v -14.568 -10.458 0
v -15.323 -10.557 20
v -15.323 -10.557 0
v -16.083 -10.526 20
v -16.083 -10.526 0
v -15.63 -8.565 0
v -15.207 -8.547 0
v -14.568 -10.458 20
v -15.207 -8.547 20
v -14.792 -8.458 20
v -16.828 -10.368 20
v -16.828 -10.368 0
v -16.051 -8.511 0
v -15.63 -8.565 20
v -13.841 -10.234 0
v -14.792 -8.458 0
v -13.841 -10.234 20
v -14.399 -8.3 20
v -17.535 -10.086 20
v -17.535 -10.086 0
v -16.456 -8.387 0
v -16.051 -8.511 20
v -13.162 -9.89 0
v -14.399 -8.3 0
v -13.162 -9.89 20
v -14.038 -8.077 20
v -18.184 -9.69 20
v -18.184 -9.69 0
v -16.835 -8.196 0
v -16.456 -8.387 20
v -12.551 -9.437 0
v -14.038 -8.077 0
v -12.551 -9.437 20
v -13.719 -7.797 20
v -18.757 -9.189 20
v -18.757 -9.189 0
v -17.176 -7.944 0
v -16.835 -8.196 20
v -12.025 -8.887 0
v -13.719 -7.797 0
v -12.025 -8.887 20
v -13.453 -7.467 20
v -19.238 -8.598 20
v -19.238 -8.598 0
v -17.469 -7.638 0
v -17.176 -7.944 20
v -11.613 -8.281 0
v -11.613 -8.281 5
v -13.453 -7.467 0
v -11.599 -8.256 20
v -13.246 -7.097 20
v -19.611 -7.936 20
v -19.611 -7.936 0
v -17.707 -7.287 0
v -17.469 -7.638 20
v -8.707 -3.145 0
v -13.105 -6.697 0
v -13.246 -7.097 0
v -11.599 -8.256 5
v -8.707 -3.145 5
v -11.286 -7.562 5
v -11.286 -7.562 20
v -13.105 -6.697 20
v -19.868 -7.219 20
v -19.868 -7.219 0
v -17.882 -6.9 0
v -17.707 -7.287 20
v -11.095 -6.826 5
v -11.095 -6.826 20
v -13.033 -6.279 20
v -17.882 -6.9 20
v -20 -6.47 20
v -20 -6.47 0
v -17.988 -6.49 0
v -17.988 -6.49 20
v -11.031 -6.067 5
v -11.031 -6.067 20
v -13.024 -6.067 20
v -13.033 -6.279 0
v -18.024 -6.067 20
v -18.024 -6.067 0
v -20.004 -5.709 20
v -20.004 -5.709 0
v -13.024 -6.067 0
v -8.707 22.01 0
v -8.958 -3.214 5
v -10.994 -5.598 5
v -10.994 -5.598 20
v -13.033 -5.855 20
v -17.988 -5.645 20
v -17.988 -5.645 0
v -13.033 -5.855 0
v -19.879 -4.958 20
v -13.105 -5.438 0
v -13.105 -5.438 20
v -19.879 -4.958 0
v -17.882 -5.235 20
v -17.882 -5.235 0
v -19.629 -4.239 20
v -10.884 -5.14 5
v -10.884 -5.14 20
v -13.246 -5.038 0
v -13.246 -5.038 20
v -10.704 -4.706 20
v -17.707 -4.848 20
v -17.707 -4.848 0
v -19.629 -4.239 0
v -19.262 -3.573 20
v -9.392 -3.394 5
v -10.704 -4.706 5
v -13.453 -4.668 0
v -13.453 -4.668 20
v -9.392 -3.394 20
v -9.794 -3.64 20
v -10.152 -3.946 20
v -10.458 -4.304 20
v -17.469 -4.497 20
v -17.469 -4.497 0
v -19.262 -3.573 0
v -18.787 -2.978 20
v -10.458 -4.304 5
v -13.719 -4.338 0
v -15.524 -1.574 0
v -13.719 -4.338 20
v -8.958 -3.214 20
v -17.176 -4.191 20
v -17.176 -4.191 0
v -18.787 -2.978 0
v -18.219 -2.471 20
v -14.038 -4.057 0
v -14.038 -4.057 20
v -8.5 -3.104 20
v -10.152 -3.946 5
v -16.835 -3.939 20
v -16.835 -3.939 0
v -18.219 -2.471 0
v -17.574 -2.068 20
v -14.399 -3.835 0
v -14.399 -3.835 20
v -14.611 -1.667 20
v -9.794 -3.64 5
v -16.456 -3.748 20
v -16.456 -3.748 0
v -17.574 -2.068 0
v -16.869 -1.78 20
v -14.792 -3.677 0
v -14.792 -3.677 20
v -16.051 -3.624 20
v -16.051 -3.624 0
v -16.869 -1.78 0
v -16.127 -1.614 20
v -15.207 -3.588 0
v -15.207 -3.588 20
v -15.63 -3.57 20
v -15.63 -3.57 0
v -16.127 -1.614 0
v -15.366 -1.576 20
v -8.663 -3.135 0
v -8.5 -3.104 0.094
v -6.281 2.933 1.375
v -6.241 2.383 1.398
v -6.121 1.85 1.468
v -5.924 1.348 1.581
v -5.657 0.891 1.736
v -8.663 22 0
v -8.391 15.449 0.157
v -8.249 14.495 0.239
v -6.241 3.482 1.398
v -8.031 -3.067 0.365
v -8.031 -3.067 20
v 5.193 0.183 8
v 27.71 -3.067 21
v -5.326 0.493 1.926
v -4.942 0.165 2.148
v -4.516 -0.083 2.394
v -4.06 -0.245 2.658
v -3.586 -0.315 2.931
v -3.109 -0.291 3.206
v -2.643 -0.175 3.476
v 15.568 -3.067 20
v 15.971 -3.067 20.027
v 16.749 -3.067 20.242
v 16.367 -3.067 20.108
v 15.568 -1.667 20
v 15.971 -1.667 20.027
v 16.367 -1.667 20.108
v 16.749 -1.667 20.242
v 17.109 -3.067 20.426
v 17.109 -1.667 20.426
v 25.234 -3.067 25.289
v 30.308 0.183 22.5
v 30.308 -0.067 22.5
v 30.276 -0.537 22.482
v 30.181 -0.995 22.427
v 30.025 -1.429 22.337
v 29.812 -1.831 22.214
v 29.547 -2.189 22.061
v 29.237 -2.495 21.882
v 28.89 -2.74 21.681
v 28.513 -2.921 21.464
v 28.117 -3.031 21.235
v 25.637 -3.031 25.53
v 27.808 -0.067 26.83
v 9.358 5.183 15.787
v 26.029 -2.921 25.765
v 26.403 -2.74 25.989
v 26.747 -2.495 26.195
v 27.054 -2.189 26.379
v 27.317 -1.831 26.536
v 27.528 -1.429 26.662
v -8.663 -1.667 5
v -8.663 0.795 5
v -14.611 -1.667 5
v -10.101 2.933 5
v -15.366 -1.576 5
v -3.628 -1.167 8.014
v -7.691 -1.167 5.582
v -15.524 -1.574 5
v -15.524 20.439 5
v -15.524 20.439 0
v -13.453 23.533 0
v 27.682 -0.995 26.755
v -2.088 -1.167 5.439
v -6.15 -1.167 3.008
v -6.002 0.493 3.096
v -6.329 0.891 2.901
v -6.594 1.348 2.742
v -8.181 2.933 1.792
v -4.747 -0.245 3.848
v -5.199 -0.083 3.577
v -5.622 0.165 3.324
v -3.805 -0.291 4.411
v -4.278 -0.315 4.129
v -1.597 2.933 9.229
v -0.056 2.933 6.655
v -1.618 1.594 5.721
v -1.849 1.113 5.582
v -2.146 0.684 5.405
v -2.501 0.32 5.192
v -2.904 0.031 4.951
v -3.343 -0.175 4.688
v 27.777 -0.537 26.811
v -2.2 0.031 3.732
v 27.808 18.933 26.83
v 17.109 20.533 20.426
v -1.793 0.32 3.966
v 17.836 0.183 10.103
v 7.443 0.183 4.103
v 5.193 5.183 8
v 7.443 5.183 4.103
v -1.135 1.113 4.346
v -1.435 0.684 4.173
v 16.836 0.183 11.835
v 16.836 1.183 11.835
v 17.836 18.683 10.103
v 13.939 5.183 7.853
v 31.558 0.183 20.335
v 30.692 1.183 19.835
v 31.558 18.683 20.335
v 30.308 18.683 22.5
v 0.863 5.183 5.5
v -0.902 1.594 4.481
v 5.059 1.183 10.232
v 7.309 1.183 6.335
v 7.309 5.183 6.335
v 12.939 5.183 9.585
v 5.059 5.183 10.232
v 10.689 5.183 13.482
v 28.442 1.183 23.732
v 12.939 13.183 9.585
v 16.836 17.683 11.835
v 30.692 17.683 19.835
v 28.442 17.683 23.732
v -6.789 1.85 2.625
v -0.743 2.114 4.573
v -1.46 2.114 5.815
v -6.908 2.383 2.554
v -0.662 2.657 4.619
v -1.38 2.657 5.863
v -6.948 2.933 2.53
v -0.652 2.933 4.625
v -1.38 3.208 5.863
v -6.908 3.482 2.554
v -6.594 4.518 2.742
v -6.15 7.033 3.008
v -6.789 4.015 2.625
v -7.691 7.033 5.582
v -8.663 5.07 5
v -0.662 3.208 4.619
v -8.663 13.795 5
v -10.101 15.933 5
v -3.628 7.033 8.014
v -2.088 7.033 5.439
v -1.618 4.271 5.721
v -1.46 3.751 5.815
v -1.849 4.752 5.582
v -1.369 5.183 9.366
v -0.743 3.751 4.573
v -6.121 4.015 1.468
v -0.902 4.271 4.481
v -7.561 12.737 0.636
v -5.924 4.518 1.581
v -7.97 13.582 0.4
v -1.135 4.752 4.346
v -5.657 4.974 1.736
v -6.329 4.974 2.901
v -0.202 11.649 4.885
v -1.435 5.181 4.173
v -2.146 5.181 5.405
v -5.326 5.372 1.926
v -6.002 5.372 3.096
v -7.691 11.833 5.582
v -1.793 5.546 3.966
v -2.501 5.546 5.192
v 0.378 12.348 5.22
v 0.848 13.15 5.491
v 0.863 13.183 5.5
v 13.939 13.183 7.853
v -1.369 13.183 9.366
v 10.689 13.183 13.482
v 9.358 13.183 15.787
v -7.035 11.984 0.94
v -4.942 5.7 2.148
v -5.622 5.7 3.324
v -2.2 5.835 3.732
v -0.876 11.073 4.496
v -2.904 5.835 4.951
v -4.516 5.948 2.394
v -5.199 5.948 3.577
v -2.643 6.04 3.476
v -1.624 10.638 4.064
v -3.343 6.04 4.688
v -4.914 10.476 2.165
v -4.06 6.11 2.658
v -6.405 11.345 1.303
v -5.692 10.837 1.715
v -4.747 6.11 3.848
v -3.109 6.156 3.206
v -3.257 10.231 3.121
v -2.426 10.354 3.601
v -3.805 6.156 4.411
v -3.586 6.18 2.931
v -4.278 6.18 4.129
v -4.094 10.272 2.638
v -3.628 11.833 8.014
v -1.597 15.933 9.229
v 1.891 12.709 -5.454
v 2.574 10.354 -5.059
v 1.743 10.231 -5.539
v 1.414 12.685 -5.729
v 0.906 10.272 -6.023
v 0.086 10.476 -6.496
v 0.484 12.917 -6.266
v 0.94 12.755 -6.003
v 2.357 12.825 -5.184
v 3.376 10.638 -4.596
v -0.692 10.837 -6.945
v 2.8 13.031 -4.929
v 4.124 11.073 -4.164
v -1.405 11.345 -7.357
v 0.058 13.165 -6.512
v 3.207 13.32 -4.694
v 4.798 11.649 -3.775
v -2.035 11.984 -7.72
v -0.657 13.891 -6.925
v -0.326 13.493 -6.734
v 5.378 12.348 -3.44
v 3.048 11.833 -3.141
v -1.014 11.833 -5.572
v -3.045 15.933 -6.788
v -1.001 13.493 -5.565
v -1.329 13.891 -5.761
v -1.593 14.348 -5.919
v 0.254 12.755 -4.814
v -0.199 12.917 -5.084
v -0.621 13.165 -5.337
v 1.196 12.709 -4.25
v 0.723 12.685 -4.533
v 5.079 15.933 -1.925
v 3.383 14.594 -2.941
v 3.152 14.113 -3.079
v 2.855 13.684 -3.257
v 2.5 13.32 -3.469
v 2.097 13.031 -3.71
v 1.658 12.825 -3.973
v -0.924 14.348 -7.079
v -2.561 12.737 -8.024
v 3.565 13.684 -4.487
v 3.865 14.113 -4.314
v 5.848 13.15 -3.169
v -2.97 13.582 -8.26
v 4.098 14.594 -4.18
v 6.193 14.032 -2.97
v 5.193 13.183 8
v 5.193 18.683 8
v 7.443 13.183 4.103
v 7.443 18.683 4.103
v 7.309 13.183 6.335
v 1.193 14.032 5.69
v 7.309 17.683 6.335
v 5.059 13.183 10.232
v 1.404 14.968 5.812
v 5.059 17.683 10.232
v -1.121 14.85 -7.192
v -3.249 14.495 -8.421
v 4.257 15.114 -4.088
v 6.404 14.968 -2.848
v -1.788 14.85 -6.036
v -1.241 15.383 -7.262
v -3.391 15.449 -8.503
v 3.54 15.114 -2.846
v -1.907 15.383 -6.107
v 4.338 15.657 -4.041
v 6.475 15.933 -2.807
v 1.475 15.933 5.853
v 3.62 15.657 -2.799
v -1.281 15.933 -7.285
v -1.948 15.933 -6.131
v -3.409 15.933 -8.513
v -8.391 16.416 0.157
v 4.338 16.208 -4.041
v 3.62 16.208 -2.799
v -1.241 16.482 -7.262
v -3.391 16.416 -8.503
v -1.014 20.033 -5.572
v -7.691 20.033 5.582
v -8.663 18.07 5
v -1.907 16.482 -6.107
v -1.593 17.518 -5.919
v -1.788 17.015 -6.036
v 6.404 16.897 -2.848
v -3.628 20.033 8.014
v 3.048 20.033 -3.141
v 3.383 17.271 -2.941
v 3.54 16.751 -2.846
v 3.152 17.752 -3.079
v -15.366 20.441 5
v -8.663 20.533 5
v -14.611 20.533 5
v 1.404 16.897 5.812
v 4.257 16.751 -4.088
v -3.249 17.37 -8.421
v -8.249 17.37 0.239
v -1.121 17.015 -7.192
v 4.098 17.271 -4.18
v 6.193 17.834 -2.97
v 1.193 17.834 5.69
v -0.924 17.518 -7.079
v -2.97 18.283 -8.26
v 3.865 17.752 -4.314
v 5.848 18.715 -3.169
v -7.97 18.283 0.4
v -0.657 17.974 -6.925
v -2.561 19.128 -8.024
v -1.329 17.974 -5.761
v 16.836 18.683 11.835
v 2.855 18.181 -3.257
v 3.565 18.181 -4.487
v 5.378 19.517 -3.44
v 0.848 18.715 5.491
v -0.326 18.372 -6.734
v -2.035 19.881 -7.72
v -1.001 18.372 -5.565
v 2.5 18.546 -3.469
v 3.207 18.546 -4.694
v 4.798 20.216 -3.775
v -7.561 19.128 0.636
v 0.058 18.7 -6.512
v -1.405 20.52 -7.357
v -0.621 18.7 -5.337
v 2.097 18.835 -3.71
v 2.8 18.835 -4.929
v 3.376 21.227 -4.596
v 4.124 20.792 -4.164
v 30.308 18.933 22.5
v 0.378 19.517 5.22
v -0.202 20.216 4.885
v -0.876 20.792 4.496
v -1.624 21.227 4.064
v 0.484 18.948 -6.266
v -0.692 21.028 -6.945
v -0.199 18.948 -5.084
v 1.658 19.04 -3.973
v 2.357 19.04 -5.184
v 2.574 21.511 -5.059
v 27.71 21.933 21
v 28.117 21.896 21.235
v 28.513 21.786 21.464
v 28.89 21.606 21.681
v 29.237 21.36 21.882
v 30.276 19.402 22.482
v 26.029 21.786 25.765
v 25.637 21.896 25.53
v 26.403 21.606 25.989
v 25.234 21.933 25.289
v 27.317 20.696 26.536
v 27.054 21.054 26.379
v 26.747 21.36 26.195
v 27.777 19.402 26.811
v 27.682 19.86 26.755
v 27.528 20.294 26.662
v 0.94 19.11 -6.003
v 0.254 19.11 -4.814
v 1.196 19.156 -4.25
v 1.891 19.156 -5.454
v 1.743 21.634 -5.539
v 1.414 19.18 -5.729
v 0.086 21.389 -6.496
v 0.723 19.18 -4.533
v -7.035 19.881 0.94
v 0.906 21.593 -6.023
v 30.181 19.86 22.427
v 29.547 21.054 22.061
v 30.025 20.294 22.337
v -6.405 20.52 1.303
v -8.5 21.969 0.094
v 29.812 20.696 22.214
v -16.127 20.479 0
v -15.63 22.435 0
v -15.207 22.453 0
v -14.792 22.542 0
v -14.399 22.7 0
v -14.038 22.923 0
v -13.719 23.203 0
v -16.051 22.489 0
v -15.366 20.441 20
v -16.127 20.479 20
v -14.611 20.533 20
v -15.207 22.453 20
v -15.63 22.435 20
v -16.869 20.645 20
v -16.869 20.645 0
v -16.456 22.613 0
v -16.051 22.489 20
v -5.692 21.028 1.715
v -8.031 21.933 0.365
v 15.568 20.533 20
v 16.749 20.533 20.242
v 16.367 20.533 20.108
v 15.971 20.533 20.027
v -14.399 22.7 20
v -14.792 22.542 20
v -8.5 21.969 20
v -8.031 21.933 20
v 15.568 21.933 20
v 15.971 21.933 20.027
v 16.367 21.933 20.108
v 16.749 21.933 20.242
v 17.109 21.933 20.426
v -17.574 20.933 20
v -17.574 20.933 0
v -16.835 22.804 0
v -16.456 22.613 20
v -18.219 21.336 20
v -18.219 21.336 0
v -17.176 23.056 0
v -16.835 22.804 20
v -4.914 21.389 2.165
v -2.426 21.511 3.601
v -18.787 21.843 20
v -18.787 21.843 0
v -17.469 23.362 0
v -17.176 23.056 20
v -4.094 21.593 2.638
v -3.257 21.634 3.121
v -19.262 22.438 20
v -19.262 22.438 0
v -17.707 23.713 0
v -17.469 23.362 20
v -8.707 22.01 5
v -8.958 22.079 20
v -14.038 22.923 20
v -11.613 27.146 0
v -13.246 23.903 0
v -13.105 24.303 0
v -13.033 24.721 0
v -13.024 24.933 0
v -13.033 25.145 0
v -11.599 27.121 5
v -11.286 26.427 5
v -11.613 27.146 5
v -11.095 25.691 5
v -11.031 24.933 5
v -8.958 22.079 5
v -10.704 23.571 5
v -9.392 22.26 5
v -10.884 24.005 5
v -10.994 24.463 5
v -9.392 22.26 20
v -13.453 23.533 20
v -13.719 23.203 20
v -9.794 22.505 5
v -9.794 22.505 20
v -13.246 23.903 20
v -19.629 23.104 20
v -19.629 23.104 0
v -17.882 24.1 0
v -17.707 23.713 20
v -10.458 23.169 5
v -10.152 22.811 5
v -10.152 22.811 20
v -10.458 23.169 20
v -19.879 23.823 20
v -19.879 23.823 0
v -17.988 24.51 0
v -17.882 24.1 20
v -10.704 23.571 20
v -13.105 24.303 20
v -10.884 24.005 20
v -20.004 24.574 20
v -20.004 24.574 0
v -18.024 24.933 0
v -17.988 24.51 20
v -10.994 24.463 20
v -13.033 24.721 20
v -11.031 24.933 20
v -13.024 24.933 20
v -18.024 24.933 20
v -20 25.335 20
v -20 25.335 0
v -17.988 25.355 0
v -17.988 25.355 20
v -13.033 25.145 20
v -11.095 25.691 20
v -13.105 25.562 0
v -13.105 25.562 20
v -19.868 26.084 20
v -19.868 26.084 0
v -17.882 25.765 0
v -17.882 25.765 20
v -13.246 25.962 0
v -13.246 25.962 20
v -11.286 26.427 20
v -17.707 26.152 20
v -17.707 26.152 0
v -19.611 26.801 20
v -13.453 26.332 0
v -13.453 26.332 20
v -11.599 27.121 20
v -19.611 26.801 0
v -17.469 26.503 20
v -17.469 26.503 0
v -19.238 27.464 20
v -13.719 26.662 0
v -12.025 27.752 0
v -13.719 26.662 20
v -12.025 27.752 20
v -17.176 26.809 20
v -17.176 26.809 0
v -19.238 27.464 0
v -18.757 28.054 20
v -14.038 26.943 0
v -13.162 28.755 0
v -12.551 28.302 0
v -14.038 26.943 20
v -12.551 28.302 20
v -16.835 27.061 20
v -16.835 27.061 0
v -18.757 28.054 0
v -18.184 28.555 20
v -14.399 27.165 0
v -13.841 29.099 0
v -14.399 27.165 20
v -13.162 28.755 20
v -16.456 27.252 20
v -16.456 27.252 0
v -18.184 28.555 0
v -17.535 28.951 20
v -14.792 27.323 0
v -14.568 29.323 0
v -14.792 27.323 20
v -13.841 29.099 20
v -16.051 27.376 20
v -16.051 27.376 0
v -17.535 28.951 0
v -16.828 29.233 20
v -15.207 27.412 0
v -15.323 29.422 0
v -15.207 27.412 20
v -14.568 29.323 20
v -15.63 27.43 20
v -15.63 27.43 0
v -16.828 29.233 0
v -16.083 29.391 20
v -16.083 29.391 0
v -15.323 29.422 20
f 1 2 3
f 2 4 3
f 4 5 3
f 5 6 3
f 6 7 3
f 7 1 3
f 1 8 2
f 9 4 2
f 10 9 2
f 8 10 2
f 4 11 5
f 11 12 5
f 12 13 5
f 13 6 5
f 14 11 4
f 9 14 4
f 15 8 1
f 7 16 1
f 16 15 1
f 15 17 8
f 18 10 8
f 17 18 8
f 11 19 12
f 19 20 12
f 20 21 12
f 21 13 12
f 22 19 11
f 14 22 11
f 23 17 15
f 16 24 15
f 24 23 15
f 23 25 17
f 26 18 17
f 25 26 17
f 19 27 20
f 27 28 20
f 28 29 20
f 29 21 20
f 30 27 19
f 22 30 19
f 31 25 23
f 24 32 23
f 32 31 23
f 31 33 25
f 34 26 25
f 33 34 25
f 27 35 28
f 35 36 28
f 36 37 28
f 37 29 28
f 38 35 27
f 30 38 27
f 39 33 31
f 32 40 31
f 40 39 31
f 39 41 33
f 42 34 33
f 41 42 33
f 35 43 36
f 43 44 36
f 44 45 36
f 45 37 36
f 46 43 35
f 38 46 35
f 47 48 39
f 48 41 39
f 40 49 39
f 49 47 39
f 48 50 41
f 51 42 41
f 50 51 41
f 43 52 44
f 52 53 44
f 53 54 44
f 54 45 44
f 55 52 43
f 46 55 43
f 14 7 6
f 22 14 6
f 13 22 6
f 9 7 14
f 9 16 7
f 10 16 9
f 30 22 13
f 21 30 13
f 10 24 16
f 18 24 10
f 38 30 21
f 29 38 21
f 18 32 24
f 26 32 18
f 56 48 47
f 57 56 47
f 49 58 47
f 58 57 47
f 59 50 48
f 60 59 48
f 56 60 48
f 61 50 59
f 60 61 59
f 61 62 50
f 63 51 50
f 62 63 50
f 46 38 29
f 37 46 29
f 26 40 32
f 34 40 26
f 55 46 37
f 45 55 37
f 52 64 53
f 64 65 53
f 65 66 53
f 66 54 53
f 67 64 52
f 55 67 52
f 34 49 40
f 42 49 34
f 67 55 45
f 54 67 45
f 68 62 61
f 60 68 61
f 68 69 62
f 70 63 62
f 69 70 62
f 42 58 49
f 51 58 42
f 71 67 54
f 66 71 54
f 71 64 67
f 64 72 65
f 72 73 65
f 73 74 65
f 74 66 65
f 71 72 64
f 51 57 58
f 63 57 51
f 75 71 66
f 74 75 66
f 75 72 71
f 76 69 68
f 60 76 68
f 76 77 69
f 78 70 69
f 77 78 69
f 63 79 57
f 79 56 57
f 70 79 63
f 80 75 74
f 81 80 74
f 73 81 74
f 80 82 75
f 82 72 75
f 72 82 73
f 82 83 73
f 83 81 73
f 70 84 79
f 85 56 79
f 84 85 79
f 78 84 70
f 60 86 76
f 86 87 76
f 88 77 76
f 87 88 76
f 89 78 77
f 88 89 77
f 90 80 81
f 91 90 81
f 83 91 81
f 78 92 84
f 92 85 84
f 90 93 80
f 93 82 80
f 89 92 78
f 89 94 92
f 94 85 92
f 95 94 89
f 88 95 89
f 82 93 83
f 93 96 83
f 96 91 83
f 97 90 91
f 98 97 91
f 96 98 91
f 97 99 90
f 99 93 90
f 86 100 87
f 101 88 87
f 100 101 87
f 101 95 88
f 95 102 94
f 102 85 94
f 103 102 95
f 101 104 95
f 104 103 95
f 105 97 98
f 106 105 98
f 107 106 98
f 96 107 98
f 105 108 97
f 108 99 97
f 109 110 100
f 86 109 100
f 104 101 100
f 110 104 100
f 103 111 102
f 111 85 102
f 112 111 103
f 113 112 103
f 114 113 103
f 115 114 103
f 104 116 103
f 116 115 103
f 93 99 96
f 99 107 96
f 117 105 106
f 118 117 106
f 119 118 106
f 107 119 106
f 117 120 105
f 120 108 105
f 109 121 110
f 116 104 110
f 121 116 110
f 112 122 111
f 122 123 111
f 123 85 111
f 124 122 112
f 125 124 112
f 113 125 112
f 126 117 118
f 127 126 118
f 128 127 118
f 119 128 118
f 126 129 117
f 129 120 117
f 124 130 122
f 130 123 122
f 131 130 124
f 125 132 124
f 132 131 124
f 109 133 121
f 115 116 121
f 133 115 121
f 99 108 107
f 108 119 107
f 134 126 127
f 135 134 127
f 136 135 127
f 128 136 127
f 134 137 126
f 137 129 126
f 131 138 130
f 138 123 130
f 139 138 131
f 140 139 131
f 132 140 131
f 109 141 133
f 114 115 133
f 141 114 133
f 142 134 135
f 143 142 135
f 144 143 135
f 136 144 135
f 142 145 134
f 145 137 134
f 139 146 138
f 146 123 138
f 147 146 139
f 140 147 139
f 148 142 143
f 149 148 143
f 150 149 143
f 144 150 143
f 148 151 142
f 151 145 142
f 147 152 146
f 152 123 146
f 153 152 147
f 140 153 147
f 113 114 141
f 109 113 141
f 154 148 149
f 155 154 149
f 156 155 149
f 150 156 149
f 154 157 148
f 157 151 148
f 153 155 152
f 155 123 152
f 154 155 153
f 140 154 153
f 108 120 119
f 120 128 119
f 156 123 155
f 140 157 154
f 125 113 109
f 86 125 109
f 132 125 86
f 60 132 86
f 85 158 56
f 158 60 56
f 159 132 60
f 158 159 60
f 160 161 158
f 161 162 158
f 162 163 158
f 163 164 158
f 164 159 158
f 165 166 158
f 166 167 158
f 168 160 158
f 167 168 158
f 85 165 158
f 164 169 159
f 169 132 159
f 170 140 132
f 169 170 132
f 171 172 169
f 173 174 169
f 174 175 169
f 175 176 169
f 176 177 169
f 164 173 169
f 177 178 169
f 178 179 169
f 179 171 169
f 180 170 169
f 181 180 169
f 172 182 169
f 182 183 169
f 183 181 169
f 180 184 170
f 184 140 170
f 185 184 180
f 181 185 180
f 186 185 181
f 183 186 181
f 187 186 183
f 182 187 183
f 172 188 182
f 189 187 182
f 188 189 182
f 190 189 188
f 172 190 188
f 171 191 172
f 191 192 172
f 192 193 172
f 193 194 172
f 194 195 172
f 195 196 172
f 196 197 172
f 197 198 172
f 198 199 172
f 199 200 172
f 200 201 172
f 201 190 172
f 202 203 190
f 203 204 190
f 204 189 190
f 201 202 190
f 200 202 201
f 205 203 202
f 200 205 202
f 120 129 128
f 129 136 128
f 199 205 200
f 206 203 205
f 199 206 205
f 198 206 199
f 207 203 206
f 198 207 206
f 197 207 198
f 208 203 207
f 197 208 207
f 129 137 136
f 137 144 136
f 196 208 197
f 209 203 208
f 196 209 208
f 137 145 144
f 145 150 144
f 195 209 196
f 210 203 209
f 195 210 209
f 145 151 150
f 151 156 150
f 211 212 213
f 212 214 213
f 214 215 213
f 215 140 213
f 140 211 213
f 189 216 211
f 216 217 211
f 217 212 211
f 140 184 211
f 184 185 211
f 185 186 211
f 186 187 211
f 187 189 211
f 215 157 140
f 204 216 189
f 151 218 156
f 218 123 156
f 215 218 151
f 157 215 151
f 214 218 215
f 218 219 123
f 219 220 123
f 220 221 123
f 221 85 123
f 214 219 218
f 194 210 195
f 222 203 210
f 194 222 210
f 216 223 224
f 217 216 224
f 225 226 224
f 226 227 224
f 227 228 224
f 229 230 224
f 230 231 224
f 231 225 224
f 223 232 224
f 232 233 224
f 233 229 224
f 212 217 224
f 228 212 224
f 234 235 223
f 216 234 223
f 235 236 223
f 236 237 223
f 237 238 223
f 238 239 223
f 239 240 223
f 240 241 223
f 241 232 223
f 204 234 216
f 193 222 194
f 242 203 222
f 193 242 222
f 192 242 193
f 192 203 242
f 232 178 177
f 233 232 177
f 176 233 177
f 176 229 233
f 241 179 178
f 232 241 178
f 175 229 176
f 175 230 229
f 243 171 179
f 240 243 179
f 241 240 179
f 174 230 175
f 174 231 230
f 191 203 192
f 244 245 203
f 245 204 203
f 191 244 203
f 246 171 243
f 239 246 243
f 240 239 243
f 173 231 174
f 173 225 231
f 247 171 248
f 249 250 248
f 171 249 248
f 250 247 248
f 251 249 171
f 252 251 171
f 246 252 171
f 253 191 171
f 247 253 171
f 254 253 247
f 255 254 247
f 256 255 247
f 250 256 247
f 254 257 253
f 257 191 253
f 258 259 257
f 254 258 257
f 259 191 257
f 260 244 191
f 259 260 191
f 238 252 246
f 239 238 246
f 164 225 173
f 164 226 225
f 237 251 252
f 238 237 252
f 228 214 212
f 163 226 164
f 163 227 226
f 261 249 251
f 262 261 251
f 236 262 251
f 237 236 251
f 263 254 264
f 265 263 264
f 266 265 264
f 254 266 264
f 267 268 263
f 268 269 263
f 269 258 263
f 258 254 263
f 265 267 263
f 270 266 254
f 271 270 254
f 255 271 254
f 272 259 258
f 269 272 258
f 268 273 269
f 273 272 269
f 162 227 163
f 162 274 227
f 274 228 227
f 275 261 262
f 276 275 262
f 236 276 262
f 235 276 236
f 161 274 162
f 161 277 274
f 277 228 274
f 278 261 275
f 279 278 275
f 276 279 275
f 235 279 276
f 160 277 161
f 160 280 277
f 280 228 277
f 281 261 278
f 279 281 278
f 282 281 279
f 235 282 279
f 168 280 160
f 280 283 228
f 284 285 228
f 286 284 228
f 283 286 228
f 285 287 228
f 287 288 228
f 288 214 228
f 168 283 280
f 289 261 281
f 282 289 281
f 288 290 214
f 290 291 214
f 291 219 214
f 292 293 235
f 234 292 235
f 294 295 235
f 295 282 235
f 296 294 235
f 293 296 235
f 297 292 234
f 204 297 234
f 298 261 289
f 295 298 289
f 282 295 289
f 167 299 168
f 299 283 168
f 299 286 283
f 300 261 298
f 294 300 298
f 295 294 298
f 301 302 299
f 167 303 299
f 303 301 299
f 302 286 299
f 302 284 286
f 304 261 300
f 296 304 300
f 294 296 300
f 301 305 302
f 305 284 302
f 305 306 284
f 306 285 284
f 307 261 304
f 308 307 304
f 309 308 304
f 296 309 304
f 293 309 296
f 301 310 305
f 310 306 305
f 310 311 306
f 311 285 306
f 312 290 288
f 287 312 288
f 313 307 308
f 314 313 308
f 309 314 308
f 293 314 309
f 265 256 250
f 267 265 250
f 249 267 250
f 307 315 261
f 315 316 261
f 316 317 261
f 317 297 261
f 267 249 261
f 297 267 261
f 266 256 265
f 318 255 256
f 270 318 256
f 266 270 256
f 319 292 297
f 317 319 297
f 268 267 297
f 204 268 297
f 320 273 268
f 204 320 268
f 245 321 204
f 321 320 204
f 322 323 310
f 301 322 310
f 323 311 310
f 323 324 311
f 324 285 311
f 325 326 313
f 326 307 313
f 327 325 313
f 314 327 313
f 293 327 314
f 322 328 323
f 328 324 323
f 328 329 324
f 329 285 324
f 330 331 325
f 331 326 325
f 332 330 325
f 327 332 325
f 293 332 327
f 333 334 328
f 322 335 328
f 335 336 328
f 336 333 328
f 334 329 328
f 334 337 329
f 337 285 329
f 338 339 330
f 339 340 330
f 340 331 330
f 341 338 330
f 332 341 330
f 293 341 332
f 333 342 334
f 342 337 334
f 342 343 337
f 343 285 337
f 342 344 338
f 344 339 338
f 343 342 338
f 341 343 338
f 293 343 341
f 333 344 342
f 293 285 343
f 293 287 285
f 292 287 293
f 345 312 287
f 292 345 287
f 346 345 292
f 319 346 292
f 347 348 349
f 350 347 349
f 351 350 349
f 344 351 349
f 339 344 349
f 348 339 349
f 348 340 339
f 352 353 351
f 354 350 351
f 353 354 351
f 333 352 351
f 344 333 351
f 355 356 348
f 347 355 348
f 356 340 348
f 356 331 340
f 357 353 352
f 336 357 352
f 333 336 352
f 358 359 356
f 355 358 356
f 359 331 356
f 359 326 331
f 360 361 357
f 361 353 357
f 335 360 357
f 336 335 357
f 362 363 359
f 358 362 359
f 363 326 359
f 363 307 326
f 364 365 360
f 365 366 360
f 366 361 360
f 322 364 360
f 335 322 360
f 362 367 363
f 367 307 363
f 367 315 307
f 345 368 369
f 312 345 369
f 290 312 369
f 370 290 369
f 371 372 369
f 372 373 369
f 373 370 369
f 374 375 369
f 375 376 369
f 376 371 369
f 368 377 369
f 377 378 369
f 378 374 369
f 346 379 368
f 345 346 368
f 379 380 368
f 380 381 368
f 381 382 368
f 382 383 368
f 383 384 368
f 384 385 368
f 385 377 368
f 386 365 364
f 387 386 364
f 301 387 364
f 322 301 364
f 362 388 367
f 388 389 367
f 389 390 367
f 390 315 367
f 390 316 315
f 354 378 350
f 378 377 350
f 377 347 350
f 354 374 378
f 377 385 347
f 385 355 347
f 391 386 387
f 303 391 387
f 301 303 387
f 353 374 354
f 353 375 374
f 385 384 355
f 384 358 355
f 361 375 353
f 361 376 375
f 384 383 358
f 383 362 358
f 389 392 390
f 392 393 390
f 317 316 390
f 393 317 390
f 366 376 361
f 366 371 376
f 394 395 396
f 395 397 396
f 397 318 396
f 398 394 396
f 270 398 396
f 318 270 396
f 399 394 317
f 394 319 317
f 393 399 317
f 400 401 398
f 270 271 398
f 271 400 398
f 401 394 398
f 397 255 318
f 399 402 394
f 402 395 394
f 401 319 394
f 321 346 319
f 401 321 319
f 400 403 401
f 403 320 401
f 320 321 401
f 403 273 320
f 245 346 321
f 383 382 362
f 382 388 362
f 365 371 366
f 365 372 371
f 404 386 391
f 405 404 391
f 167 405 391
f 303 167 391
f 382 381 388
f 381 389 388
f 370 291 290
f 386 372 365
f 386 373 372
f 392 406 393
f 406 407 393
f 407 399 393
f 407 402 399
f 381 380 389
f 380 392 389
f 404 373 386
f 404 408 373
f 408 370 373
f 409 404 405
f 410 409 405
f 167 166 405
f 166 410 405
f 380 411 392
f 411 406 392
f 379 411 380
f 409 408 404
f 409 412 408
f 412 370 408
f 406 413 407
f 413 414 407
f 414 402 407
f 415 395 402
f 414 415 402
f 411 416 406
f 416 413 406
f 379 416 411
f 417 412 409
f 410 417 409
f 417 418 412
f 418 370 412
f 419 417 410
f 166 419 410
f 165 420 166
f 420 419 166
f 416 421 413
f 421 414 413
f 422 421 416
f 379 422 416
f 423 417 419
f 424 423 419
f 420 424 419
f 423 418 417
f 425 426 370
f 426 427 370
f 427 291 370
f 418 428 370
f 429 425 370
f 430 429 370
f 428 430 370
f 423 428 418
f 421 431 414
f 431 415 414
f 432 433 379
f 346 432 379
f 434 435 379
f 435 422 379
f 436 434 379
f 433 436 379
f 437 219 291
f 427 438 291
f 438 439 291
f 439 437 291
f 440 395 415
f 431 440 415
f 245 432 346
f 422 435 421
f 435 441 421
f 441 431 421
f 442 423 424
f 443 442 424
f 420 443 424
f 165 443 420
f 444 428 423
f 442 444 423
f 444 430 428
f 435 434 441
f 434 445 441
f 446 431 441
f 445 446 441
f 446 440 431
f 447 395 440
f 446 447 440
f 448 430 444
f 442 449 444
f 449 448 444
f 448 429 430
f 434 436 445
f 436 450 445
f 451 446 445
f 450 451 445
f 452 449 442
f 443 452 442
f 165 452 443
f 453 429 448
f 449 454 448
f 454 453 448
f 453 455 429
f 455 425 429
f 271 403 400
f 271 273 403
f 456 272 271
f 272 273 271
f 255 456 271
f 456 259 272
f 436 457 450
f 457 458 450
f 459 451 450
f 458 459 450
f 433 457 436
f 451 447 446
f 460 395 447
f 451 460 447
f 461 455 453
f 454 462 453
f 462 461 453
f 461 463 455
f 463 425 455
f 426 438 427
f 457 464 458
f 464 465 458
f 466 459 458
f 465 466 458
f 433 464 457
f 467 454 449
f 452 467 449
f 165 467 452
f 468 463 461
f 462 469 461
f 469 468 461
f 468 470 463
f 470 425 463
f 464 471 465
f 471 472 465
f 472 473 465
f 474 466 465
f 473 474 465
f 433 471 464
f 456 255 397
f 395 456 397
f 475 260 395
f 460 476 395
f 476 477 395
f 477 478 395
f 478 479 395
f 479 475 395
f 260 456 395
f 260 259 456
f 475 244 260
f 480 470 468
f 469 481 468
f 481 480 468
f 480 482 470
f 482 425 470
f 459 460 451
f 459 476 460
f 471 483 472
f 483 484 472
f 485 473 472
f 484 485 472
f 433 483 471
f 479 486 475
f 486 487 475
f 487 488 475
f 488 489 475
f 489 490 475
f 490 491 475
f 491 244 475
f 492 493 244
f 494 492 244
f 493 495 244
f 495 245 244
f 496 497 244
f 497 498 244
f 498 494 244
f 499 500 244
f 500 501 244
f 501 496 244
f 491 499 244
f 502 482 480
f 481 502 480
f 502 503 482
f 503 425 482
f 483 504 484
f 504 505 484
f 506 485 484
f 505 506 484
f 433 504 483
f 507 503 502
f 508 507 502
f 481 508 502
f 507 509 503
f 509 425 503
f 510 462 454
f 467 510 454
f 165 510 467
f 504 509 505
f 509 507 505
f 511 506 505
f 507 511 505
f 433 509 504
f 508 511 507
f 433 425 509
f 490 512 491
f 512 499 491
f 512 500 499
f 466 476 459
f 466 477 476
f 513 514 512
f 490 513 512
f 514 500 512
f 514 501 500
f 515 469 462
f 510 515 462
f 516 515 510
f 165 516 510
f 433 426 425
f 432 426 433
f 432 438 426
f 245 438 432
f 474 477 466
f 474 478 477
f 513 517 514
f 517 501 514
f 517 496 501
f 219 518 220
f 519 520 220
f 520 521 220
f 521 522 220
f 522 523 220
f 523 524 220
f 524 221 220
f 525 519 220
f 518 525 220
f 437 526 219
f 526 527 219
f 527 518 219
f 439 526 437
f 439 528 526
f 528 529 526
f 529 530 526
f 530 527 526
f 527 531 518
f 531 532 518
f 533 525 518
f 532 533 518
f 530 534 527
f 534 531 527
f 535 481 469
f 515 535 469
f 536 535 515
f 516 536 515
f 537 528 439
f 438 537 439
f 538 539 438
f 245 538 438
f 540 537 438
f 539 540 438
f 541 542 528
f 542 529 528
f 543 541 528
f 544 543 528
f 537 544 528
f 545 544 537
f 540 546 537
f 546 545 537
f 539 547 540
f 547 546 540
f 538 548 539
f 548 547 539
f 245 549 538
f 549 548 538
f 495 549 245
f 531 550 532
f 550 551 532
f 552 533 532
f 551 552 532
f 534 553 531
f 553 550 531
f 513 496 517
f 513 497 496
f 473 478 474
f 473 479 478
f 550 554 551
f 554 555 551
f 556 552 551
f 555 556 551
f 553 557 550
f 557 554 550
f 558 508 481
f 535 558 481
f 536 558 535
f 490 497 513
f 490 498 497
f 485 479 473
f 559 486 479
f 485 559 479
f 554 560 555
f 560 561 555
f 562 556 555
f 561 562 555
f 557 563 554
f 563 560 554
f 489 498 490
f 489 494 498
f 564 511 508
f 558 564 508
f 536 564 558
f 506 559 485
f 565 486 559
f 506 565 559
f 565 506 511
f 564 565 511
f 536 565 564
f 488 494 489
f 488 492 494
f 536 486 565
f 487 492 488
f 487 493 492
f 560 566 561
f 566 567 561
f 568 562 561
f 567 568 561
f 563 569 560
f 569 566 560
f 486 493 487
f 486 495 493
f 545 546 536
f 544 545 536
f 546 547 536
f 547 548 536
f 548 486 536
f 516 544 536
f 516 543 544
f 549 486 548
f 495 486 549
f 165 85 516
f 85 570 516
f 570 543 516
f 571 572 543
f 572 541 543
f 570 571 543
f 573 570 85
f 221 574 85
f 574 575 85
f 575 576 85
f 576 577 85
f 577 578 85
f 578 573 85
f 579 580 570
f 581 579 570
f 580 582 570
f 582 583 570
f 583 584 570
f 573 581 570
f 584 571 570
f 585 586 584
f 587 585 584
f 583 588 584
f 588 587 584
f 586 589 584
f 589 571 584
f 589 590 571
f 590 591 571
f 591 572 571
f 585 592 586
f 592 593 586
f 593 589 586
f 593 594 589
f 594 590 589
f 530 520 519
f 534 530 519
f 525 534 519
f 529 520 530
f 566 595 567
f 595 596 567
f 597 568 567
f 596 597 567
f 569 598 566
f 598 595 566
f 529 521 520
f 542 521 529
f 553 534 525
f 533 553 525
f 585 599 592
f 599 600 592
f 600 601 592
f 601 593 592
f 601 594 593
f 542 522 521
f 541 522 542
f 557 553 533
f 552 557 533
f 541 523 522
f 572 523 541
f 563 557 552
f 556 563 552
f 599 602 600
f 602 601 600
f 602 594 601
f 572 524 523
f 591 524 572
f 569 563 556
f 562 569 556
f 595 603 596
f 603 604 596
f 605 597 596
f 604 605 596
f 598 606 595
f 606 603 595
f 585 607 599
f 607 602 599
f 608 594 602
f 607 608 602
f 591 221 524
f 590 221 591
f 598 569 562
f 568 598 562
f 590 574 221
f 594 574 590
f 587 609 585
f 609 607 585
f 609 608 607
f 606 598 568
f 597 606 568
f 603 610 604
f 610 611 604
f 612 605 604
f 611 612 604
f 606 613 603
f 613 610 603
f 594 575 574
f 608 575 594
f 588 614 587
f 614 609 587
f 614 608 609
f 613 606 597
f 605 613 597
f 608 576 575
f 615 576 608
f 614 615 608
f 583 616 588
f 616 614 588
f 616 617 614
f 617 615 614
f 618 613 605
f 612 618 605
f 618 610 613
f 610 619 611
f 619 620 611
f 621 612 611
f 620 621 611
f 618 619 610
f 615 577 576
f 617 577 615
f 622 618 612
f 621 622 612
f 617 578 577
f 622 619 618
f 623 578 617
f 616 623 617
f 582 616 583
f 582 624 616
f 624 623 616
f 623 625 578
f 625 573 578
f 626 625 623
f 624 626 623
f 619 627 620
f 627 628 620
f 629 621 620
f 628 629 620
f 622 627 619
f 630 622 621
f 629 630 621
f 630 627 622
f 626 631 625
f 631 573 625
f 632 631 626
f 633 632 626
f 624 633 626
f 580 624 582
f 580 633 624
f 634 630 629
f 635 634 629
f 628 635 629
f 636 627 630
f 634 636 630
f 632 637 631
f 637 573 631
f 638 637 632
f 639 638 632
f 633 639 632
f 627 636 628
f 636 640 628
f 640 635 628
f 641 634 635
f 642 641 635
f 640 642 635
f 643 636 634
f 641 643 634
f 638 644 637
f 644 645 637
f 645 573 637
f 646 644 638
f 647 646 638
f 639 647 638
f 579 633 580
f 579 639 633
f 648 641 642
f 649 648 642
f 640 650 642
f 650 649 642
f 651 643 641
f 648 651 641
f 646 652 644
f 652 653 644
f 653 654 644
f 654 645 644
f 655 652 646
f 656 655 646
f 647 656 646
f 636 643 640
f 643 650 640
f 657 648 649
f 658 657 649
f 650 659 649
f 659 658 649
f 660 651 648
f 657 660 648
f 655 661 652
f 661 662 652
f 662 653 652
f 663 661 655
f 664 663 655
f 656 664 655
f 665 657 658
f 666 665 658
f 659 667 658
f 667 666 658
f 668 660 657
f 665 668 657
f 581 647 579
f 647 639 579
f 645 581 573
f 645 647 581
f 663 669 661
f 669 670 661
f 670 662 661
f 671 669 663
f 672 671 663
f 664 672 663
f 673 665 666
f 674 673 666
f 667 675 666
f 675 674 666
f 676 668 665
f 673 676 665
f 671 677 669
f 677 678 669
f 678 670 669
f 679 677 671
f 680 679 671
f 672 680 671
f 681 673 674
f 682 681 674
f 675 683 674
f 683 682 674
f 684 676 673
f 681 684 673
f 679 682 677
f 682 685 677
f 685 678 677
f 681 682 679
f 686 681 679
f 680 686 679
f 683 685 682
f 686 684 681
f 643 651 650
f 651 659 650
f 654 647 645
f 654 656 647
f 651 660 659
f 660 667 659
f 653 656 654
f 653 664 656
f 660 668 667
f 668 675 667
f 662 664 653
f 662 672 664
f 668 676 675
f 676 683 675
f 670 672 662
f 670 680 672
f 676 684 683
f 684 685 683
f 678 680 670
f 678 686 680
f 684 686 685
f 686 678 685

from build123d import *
from build123d.topology import SkipClean

# Parameters (mm, degrees)
CROQUIS3_R                 = 2.5
SALIENTE_EXTRUIR1_DEPTH    = 5
CROQUIS6_W                 = 27
CROQUIS6_H                 = 16.5
CORTAR_EXTRUIR1_DEPTH      = 2
CROQUIS7_W                 = 29
CROQUIS7_H                 = 18.5
CROQUIS7_W_2               = 27
CROQUIS7_H_2               = 16.5
SALIENTE_EXTRUIR2_DEPTH    = 2.5
CROQUIS8_W                 = 12
CROQUIS8_H                 = 18.5
SALIENTE_EXTRUIR3_DEPTH    = 2
CROQUIS9_W                 = 12.5
CROQUIS9_H                 = 8
CORTAR_EXTRUIR2_DEPTH      = 10
CROQUIS10_R                = 3.25
CORTAR_EXTRUIR3_DEPTH      = 10
CORTAR_EXTRUIR4_DEPTH      = 3
CORTAR_EXTRUIR4_DEPTH_BACK = 3
CROQUIS12_R                = 4.493807468
CROQUIS12_R_2              = 2.5
SALIENTE_EXTRUIR4_DEPTH    = 15
SALIENTE_EXTRUIR5_DEPTH    = 1.4
REDONDEO1_R                = 3
SALIENTE_EXTRUIR6_START    = 10
CROQUIS14_R                = 5.706356105
CROQUIS14_R_2              = 3.25
SALIENTE_EXTRUIR6_DEPTH    = 10
CORTAR_EXTRUIR5_DEPTH      = 10


with BuildPart() as part:
    # Croquis3 → Saliente-Extruir1 (new body)
    with BuildSketch(Plane.XY):
        with BuildLine():
            Line((-8.662935846, -3.067476434), (-11.613388129, -8.280831326))
            ThreePointArc((-11.613388129, -8.280831326), (-19.406371569, -8.331091381), (-15.524316735, -1.57366826))
            Line((-15.524316735, -1.57366826), (-15.524316735, 20.438715392))
            ThreePointArc((-15.524316735, 20.438715392), (-19.406371569, 27.196138513), (-11.613388129, 27.145878458))
            Line((-11.613388129, 27.145878458), (-8.662935846, 21.932523566))
            Line((-8.662935846, 21.932523566), (-8.662935846, -3.067476434))
        make_face()
        with Locations((-15.524316735, 24.93252286)):
            Circle(CROQUIS3_R, mode=Mode.SUBTRACT)
        with Locations((-15.524316735, -6.067475728)):
            Circle(CROQUIS3_R, mode=Mode.SUBTRACT)
    extrude(amount=SALIENTE_EXTRUIR1_DEPTH)

    # Croquis5 → section 0 of recubrir1
    with BuildSketch(Plane(origin=(32.473941286, 0, 18.748838743), x_dir=(0.5000000000000042, 0, -0.8660254037844363), z_dir=(0.8660254037844363, 0, 0.5000000000000042)), mode=Mode.PRIVATE) as recubrir1_s0:
        with BuildLine():
            Line((-4.331467923, 21.932523566), (-9.331467923, 21.932523566))
            Line((-9.331467923, 21.932523566), (-9.331467923, -3.067476434))
            Line((-9.331467923, -3.067476434), (-4.331467923, -3.067476434))
            Line((-4.331467923, -3.067476434), (-4.331467923, 21.932523566))
        make_face()
    # loft up to a face of the part (recubrir1)
    loft([recubrir1_s0.sketch, part.faces().sort_by_distance((-8.662935846, 9.432523566, 2.5))[0]])

    # Croquis6 → Cortar-Extruir1 (cut)
    with BuildSketch(Plane(origin=(-2.165733961, 0, 3.751161257), x_dir=(-0.8660254037844364, 0, -0.5000000000000041), z_dir=(0.500000000000004, 0, -0.8660254037844363))):
        with Locations((-22.997677486, 9.432523566)):
            Rectangle(CROQUIS6_W, CROQUIS6_H)
    extrude(amount=-CORTAR_EXTRUIR1_DEPTH, mode=Mode.SUBTRACT)

    # Croquis7 → Saliente-Extruir2 (add)
    with BuildSketch(Plane(origin=(-2.165733961, 0, 3.751161257), x_dir=(-0.8660254037844364, 0, -0.5000000000000041), z_dir=(0.500000000000004, 0, -0.8660254037844363))):
        with Locations((-22.997677486, 9.432523566)):
            Rectangle(CROQUIS7_W, CROQUIS7_H)
        with Locations((-22.997677486, 9.432523566)):
            Rectangle(CROQUIS7_W_2, CROQUIS7_H_2, mode=Mode.SUBTRACT)
    extrude(amount=SALIENTE_EXTRUIR2_DEPTH)

    # Croquis8 → Saliente-Extruir3 (add)
    with BuildSketch(Plane(origin=(-0.915733961, 0, 1.586097747), x_dir=(-0.8660254037844364, 0, -0.500000000000004), z_dir=(0.500000000000004, 0, -0.8660254037844365))):
        with Locations((-14.497677486, 9.432523566)):
            Rectangle(CROQUIS8_W, CROQUIS8_H)
    extrude(amount=SALIENTE_EXTRUIR3_DEPTH)

    # Croquis9 → Cortar-Extruir2 (cut)
    with BuildSketch(Plane(origin=(0.084266039, 0, -0.14595306), x_dir=(-0.8660254037844364, 0, -0.5000000000000041), z_dir=(0.500000000000004, 0, -0.8660254037844363))):
        with Locations((-9.747677486, 9.182523566)):
            Rectangle(CROQUIS9_W, CROQUIS9_H)
    extrude(amount=-CORTAR_EXTRUIR2_DEPTH, mode=Mode.SUBTRACT)

    # Croquis10 → Cortar-Extruir3 (cut)
    with BuildSketch(Plane(origin=(-2.165733961, 0, 3.751161257), x_dir=(-0.8660254037844364, 0, -0.5000000000000041), z_dir=(0.500000000000004, 0, -0.8660254037844363))):
        with Locations((1.502322514, 15.932523566)):
            Circle(CROQUIS10_R)
        with Locations((1.502322514, 2.932523566)):
            Circle(CROQUIS10_R)
    extrude(amount=-CORTAR_EXTRUIR3_DEPTH, mode=Mode.SUBTRACT)

    # Croquis11 → Cortar-Extruir4 (cut, two sides: drawn at the far end of the back side and taken through both)
    with BuildSketch(Plane(origin=(-4.488412426, 0, 7.498698109), x_dir=(0.8580379698740155, 0, 0.5135862559049632), z_dir=(-0.5135862559049631, 0, 0.8580379698740154)).offset(-CORTAR_EXTRUIR4_DEPTH_BACK)):
        Polygon((-6.099034085, 15.932523566), (-3.731897982, 11.832523566), (1.002374226, 11.832523566), (3.369510329, 15.932523566), (1.002374226, 20.032523566), (-3.731897982, 20.032523566), align=None)
        Polygon((-3.731897982, -1.167476434), (-6.099034085, 2.932523566), (-3.731897982, 7.032523566), (1.002374226, 7.032523566), (3.369510329, 2.932523566), (1.002374226, -1.167476434), align=None)
    extrude(amount=CORTAR_EXTRUIR4_DEPTH + CORTAR_EXTRUIR4_DEPTH_BACK, mode=Mode.SUBTRACT)

    # Croquis12 → Saliente-Extruir4 (add)
    # profile 1 of 2: a face of its own
    with SkipClean():  # the faces are left unmerged after this step: merging them gives an invalid solid
        with BuildSketch(Plane.XY.offset(5)):
            with Locations(Location((-15.524316735, -6.067475728, 0), (0, 0, 90))):
                Circle(CROQUIS12_R)
            with Locations((-15.524316735, -6.067475728)):
                Circle(CROQUIS12_R_2, mode=Mode.SUBTRACT)
        # profile 2 of 2: a face of its own
        with BuildSketch(Plane.XY.offset(5)):
            with Locations(Location((-15.524316735, 24.93252286, 0), (0, 0, 270))):
                Circle(CROQUIS12_R)
            with Locations((-15.524316735, 24.93252286)):
                Circle(CROQUIS12_R_2, mode=Mode.SUBTRACT)
        extrude(amount=SALIENTE_EXTRUIR4_DEPTH)

    # Croquis13 → Saliente-Extruir5 (add)
    with SkipClean():  # the faces are left unmerged after this step: merging them gives an invalid solid
        with BuildSketch(Plane(origin=(0, 21.932523566, 0), x_dir=(1, 0, 0), z_dir=(0, 1, 0))):
            Polygon((-8.662935846, -5), (16.397254921, -20), (-16.030509266, -20), (-16.030509266, -5), align=None)
        saliente_extruir5 = extrude(amount=-SALIENTE_EXTRUIR5_DEPTH)

    # Simetría1: Saliente-Extruir5 across plane
    with SkipClean():  # the faces are left unmerged after this step: merging them gives an invalid solid
        add(saliente_extruir5.mirror(Plane(origin=(0, 9.432523566, 0), x_dir=(0, 0, 1), z_dir=(0, -1, 0))))

    # Redondeo1
    # the kernel refuses this fillet: 3 mm, written as the material it adds along each edge
    with BuildSketch(Plane(origin=(16.397254921, 21.932523566, 20), x_dir=(0.8580379698740132, 0, 0.5135862559049668), z_dir=(0, -1, 0))) as redondeo1_piece_1:
        with BuildLine():
            CenterArc((REDONDEO1_R * 0.2764132188, REDONDEO1_R), REDONDEO1_R, 239.0969949, 30.9030051)
            Line((-REDONDEO1_R * 0.237173037105, REDONDEO1_R * 0.141962030126), (0, 0))
            Line((0, 0), (REDONDEO1_R * 0.2764132188, 0))
        make_face()
    extrude(amount=1.4)
    with BuildSketch(Plane(origin=(-12.178526873, 21.932523566, 20), x_dir=(0.357397896635504, 0.9339522169150398, 0), z_dir=(0, 0, -1))) as redondeo1_piece_2_section:
        with BuildLine():
            CenterArc((4.284349419, 2.80185655), REDONDEO1_R, 159.059522314, 89.999994603)
            Line((1.482492768, 3.87405024), (0, 0))
            ThreePointArc((0, 0), (1.606077732, 0.296806172), (3.212155465, 0))
        make_face()
    redondeo1_piece_2 = extrude(amount=25.370044017, mode=Mode.PRIVATE)
    redondeo1_piece_2 = split(redondeo1_piece_2, bisect_by=Plane(origin=(-10.732886495, 22.627434276, 0), z_dir=(0, 0, 1)), keep=Keep.TOP, mode=Mode.PRIVATE)
    redondeo1_piece_2 = split(redondeo1_piece_2, bisect_by=Plane(origin=(-4.802740059, 22.627434276, 2.228685076), z_dir=(-0.5000000000000042, 0, 0.8660254037844363)), keep=Keep.TOP, mode=Mode.PRIVATE)
    add(redondeo1_piece_2)
    with BuildSketch(Plane(origin=(16.397254921, -3.067476434, 20), x_dir=(0.8580379698740109, 0, 0.5135862559049705), z_dir=(0, 1, 0))) as redondeo1_piece_3:
        with BuildLine():
            CenterArc((REDONDEO1_R * 0.2764132188, -REDONDEO1_R), REDONDEO1_R, 90, 30.9030051)
            Line((-REDONDEO1_R * 0.237173037105, -REDONDEO1_R * 0.141962030126), (0, 0))
            Line((0, 0), (REDONDEO1_R * 0.2764132188, 0))
        make_face()
    extrude(amount=1.4)
    with BuildSketch(Plane(origin=(-12.178526873, -3.067476434, 20), x_dir=(1, 0, 0), z_dir=(0, 0, -1))) as redondeo1_piece_4_section:
        with BuildLine():
            CenterArc((4.148017607, 3), REDONDEO1_R, 180.000005397, 89.999994603)
            ThreePointArc((1.148017607, 2.999999717), (0.851211586, 1.393921957), (0, 0))
            Line((0, 0), (4.148017607, 0))
        make_face()
    redondeo1_piece_4 = extrude(amount=25.370044017, mode=Mode.PRIVATE)
    redondeo1_piece_4 = split(redondeo1_piece_4, bisect_by=Plane(origin=(-8.521402606, -3.090294966, 0), z_dir=(0, 0, 1)), keep=Keep.TOP, mode=Mode.PRIVATE)
    redondeo1_piece_4 = split(redondeo1_piece_4, bisect_by=Plane(origin=(-3.144127143, -3.090294966, 3.18628569), z_dir=(-0.5000000000000042, 0, 0.8660254037844363)), keep=Keep.TOP, mode=Mode.PRIVATE)
    add(redondeo1_piece_4)
    # the kernel refuses this fillet: 3 mm, written as the material it takes off along each edge
    with BuildSketch(Plane(origin=(34.058207325, 21.932523566, 16.004809472), x_dir=(0, -1, 0), z_dir=(-0.5000000000000042, 0, 0.8660254037844363))) as redondeo1_2_piece_1:
        with BuildLine():
            CenterArc((REDONDEO1_R, -REDONDEO1_R), REDONDEO1_R, 90, 90)
            Line((0, -REDONDEO1_R), (0, 0))
            Line((0, 0), (REDONDEO1_R, 0))
        make_face()
    extrude(amount=20, mode=Mode.SUBTRACT)
    with BuildSketch(Plane(origin=(24.058207325, -3.067476434, 33.325317547), x_dir=(-0.8660254037844363, 0, -0.5000000000000041), z_dir=(0.5000000000000042, 0, -0.8660254037844363))) as redondeo1_2_piece_2:
        with BuildLine():
            CenterArc((REDONDEO1_R, REDONDEO1_R), REDONDEO1_R, 180, 90)
            Line((0, REDONDEO1_R), (0, 0))
            Line((0, 0), (REDONDEO1_R, 0))
        make_face()
    extrude(amount=20, mode=Mode.SUBTRACT)

    # Croquis14 → Saliente-Extruir6 (add)
    with BuildSketch(Plane(origin=(-2.165733961, 0, 3.751161257), x_dir=(-0.8660254037844363, 0, -0.5000000000000042), z_dir=(0.5000000000000041, 0, -0.8660254037844362)).offset(SALIENTE_EXTRUIR6_START)):
        with Locations(Location((1.502322514, 15.932523566, 0), (0, 0, 208.810793743))):
            Circle(CROQUIS14_R)
        with Locations((1.502322514, 15.932523566)):
            Circle(CROQUIS14_R_2, mode=Mode.SUBTRACT)
    extrude(amount=-SALIENTE_EXTRUIR6_DEPTH)

    # Croquis15 → Cortar-Extruir5 (cut)
    with BuildSketch(Plane(origin=(-2.947653659, 0, 4.9245842), x_dir=(0.8580379698740153, 0, 0.5135862559049633), z_dir=(-0.5135862559049633, 0, 0.8580379698740153))):
        Polygon((3.369510329, 15.932523566), (1.002374226, 20.032523566), (-3.731897982, 20.032523566), (-6.099034085, 15.932523566), (-3.731897982, 11.832523566), (1.002374226, 11.832523566), align=None)
    extrude(amount=-CORTAR_EXTRUIR5_DEPTH, mode=Mode.SUBTRACT)


solid = part.part
